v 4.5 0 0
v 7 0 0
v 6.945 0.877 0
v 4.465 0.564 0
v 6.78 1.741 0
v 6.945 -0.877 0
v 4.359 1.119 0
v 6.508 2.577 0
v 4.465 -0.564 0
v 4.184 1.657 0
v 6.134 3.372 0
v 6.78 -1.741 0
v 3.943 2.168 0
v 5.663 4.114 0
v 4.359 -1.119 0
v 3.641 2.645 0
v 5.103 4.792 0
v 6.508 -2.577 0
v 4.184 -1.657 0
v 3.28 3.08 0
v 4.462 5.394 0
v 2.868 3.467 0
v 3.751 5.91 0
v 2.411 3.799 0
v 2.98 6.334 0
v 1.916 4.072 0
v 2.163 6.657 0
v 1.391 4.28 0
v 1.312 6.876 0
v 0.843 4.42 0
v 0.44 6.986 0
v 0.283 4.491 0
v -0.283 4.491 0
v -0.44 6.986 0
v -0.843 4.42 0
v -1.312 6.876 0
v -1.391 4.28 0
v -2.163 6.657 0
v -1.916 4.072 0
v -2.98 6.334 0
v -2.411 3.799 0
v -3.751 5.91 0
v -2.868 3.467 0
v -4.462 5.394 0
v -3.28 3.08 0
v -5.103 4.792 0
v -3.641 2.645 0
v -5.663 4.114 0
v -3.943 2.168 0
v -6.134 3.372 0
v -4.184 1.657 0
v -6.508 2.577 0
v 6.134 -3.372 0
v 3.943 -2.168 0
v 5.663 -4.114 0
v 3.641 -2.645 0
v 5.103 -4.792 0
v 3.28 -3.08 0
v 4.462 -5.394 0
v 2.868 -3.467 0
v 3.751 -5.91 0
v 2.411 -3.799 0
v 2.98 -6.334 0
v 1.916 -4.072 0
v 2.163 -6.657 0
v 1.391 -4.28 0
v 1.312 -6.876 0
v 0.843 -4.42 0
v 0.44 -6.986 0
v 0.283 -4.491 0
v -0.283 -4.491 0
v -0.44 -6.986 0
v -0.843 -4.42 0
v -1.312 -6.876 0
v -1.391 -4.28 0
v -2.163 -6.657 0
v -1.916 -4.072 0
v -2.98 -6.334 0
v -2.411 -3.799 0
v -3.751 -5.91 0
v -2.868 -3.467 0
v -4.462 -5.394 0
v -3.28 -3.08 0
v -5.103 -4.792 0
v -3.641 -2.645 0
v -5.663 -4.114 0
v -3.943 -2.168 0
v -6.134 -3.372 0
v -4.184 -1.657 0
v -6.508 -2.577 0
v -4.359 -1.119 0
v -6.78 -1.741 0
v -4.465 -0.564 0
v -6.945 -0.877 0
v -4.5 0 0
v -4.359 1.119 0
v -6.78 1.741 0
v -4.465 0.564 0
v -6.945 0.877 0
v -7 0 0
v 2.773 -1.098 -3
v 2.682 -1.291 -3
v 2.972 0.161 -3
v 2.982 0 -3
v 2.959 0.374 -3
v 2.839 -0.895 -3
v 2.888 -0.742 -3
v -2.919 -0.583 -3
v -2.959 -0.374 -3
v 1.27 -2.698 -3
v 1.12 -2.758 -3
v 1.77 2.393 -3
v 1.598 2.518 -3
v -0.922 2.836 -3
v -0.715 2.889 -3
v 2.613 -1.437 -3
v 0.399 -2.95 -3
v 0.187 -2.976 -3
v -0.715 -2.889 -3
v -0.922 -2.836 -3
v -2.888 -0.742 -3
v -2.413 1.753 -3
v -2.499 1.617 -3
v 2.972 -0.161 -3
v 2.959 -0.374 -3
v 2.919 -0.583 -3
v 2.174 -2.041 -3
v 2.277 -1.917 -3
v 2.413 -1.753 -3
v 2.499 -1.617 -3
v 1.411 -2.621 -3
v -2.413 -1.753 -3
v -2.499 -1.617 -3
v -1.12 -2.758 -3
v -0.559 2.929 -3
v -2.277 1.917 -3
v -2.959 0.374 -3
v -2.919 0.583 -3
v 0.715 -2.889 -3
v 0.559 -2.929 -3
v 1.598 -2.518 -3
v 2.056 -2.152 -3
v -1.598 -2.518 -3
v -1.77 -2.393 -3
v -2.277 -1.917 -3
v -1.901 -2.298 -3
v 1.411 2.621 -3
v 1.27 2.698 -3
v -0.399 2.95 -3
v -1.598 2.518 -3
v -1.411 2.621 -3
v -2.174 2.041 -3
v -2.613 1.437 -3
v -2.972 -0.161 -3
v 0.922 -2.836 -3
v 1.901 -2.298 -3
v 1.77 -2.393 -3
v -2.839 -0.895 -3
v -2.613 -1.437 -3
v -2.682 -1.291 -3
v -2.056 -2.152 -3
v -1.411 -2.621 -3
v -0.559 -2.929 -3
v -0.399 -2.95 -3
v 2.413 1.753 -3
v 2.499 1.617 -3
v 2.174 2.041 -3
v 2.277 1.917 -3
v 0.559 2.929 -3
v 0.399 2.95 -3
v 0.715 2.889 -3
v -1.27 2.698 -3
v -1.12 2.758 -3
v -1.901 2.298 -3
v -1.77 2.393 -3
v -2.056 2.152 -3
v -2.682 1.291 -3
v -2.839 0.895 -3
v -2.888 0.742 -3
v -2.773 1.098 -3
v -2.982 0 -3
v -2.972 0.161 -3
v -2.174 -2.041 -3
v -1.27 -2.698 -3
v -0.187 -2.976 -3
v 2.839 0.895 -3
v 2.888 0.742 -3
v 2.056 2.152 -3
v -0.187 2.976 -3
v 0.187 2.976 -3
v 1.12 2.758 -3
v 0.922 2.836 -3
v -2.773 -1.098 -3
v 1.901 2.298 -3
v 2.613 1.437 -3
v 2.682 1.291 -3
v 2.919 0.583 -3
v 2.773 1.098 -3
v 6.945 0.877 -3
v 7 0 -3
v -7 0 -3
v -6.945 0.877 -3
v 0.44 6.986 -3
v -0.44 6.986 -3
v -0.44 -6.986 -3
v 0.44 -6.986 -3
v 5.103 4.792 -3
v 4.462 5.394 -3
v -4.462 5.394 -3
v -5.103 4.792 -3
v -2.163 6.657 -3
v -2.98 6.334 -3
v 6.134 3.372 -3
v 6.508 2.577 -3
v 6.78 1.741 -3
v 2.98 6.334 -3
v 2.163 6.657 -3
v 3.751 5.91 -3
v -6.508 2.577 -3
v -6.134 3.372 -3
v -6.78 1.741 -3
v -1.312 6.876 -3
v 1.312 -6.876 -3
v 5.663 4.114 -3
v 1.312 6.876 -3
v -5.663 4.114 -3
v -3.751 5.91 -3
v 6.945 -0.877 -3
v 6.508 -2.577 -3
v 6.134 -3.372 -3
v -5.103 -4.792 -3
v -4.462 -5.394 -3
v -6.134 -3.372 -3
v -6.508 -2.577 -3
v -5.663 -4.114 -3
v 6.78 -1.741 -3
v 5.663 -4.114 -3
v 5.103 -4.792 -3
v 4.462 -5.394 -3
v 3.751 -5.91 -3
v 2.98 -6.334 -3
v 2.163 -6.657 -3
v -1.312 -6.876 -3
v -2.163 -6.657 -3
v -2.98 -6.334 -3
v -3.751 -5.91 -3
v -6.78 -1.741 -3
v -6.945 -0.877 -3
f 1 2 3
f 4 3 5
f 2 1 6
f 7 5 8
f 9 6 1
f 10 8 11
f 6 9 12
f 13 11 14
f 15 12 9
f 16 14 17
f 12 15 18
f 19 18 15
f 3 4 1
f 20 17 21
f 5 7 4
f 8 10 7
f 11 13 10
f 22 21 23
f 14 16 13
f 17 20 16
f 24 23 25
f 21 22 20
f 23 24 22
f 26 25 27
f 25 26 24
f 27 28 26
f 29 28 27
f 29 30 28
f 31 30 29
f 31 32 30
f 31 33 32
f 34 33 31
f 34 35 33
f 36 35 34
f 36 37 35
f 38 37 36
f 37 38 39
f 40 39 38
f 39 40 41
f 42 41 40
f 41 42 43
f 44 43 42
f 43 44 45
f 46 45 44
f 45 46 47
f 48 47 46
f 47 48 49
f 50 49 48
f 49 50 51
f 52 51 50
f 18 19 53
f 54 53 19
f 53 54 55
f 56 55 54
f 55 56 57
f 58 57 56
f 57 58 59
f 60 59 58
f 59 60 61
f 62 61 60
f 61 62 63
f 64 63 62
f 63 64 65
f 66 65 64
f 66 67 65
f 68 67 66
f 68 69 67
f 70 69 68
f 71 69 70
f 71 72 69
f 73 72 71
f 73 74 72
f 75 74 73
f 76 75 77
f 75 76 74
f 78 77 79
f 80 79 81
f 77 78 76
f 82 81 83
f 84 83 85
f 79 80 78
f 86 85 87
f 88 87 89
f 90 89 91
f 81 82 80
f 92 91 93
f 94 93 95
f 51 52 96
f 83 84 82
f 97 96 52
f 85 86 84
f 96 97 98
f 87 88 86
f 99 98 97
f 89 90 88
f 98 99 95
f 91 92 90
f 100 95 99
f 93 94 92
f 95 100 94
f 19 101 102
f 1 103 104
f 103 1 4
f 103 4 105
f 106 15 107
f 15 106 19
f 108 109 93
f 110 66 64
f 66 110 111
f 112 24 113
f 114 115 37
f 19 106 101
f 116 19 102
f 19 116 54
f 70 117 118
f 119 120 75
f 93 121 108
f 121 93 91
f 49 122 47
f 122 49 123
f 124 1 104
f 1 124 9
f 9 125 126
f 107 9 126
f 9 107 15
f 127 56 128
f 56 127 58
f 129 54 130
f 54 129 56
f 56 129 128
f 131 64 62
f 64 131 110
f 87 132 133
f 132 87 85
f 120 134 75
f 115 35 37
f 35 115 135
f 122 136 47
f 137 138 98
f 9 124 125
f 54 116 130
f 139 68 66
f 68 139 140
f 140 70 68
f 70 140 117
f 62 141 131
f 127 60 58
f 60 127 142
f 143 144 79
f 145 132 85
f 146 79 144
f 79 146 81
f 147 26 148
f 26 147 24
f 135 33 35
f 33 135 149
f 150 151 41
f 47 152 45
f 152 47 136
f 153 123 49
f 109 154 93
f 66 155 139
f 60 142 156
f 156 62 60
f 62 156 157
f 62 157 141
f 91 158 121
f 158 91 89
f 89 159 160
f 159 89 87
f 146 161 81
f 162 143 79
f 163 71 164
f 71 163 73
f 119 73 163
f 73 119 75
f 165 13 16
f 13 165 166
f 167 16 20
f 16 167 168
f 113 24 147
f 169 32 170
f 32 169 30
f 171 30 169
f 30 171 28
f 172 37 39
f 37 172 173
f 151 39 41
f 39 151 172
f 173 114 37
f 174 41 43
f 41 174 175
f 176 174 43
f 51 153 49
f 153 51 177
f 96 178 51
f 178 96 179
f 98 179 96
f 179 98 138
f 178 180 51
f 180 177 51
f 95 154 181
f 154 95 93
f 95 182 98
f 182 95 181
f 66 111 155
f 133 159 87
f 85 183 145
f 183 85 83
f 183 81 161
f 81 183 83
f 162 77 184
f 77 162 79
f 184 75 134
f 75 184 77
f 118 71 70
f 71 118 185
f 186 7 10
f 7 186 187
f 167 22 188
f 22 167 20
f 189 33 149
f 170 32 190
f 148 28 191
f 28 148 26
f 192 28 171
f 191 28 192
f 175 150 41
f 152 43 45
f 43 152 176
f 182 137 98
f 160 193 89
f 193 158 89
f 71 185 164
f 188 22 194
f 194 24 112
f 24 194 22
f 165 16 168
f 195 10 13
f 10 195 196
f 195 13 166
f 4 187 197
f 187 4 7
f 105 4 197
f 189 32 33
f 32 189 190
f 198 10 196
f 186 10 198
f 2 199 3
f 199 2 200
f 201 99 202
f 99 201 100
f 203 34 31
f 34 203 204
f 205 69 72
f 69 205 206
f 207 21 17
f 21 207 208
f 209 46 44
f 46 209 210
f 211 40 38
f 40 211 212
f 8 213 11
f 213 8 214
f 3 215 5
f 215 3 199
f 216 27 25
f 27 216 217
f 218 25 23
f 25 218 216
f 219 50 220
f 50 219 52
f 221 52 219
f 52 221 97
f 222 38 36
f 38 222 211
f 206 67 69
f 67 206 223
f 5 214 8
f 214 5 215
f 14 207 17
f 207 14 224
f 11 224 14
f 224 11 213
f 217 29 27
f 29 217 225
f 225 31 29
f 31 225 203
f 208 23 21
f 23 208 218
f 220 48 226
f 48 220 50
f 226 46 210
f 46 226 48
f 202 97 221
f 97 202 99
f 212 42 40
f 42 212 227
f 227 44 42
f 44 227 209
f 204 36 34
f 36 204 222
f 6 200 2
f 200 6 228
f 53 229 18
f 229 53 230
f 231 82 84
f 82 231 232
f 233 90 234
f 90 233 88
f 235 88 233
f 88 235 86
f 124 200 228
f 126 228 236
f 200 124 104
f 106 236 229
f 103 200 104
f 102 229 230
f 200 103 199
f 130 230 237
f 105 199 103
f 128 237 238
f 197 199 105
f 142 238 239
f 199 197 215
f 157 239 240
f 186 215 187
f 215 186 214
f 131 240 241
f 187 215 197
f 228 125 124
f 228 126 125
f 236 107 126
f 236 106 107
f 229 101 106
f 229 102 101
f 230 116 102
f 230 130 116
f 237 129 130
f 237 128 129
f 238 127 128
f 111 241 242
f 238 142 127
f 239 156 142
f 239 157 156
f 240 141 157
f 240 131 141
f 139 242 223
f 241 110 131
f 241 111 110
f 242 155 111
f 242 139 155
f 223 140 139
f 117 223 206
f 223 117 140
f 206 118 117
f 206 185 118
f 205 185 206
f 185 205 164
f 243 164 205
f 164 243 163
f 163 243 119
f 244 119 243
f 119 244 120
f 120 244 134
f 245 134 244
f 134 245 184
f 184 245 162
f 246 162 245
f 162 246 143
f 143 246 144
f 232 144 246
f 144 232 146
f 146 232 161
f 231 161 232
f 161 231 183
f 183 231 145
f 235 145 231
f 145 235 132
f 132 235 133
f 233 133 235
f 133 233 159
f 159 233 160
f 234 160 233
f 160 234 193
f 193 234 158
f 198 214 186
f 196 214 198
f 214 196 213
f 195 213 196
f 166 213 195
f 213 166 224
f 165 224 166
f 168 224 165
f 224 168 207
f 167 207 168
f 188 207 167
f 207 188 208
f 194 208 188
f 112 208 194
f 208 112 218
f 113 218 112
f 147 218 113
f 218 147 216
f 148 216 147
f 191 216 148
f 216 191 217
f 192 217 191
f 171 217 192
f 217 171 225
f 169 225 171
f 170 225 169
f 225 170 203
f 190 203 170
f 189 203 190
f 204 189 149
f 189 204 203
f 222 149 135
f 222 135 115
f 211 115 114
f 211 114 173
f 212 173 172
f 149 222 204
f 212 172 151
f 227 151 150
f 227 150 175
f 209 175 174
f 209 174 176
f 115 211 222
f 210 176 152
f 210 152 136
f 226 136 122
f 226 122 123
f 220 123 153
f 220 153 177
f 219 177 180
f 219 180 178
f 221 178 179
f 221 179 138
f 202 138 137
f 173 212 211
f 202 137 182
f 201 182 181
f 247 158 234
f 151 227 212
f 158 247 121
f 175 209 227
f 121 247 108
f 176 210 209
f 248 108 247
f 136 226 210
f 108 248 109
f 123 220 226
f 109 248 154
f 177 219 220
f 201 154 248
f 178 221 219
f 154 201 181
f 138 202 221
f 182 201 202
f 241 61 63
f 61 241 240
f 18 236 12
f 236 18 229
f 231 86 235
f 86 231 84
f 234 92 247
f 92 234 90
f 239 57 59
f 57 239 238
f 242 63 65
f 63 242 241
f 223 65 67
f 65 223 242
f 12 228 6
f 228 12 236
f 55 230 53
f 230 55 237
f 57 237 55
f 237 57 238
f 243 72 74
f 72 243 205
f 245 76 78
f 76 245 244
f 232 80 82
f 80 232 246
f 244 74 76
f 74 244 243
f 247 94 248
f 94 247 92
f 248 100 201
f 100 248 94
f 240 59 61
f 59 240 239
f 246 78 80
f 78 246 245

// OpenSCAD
$fn = 50;


difference() {
	union() {
		translate(v = [0, 0, -3.0000000000]) {
			cylinder(h = 3, r = 7.0000000000);
		}
		cylinder(h = 0, r = 16.0000000000);
	}
	union() {
		translate(v = [0, 0, 0]) {
			rotate(a = [0, 0, 0]) {
				difference() {
					union() {
						#translate(v = [0, 0, -3.0000000000]) {
							cylinder(h = 3, r = 2.2500000000);
						}
						#translate(v = [0, 0, -4.2000000000]) {
							cylinder(h = 4.2000000000, r1 = 2.3750000000, r2 = 4.5000000000);
						}
						#translate(v = [0, 0, -3.0000000000]) {
							cylinder(h = 3, r = 2.3750000000);
						}
						#translate(v = [0, 0, -3.0000000000]) {
							cylinder(h = 3, r = 2.2500000000);
						}
					}
					union();
				}
			}
		}
	}
}
